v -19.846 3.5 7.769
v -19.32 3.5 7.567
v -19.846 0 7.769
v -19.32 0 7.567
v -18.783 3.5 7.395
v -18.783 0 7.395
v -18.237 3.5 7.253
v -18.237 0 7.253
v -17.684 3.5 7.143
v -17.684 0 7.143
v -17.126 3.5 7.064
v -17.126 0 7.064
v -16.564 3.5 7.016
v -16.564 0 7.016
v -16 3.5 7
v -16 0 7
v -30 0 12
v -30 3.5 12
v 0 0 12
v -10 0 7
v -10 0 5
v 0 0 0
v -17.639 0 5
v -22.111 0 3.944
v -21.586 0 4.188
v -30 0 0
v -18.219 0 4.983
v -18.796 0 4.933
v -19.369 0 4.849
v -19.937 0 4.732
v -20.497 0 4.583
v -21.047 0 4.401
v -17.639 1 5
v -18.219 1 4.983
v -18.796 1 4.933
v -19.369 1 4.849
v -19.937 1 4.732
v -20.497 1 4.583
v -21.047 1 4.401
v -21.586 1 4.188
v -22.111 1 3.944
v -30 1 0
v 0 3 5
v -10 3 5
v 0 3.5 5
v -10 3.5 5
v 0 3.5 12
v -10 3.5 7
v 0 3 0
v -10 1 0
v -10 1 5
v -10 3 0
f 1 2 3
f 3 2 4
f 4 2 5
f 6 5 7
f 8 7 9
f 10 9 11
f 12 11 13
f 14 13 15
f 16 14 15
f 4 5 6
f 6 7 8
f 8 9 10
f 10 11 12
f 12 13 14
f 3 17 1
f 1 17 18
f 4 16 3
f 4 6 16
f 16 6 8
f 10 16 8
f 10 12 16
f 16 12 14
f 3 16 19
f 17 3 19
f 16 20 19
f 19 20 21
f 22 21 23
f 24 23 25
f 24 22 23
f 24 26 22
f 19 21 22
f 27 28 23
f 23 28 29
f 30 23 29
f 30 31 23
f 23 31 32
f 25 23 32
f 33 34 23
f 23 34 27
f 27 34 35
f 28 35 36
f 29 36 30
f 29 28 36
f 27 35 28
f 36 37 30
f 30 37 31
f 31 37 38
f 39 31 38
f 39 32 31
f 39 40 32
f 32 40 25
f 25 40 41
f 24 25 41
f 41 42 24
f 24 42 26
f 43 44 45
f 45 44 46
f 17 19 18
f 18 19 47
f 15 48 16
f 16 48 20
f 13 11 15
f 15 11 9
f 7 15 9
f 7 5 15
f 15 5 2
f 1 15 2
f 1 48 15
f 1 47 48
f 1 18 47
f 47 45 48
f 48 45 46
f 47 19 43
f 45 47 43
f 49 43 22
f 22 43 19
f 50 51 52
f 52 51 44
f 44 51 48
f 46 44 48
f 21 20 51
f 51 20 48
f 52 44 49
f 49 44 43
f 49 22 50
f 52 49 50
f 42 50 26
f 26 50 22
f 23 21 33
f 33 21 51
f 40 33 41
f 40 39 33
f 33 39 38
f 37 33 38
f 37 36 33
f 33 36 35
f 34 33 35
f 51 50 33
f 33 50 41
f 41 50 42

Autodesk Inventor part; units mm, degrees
ref_plane "YZ Plane" through (0, 0, 0) normal (1, 0, 0) x (0, 1, 0)
ref_plane "XZ Plane" through (0, 0, 0) normal (0, 1, 0) x (-1, 0, 0)
ref_plane "XY Plane" through (0, 0, 0) normal (0, 0, 1) x (1, 0, 0)
sketch "Sketch1" plane through (0, 0, 0) normal (0, 1, 0) x (-1, 0, 0)
  line L0 (0, 0) -> (30, 0)
  line L1 (0, 5) -> (0, 0)
  line L2 (20, 5) -> (30, 0)
  line L3 (30, 12) -> (0, 12)
  line L4 (0, 12) -> (0, 5)
  line L5 (0, 5) -> (0, 7)
  line L6 (18, 7) -> (30, 12)
  line L7 (20, 5) -> (10, 5)
  line L8 (10, 5) -> (10, 7)
  line L9 (18, 7) -> (10, 7)
  line L10 (10, 5) -> (0, 5)
  line L11 (10, 5) -> (10, 0)
  dimension "d13" = 2
  dimension "d15" = 10
extrude "Extrusion6" add sketch "Sketch1" along normal blind 1 contours L11 L7 L2 L0
extrude "Extrusion7" add sketch "Sketch1" along normal blind 3 contours L1 L10 L11 L0
extrude "Extrusion8" add sketch "Sketch1" along normal blind 3.5 contours L4 L3 L6 L9 L8 L10
fillet "Fillet4" radius 10 2 edges at (-20, 0.5, 5) (-18, 1.75, 7)
properties part number "clip_tip_M"
